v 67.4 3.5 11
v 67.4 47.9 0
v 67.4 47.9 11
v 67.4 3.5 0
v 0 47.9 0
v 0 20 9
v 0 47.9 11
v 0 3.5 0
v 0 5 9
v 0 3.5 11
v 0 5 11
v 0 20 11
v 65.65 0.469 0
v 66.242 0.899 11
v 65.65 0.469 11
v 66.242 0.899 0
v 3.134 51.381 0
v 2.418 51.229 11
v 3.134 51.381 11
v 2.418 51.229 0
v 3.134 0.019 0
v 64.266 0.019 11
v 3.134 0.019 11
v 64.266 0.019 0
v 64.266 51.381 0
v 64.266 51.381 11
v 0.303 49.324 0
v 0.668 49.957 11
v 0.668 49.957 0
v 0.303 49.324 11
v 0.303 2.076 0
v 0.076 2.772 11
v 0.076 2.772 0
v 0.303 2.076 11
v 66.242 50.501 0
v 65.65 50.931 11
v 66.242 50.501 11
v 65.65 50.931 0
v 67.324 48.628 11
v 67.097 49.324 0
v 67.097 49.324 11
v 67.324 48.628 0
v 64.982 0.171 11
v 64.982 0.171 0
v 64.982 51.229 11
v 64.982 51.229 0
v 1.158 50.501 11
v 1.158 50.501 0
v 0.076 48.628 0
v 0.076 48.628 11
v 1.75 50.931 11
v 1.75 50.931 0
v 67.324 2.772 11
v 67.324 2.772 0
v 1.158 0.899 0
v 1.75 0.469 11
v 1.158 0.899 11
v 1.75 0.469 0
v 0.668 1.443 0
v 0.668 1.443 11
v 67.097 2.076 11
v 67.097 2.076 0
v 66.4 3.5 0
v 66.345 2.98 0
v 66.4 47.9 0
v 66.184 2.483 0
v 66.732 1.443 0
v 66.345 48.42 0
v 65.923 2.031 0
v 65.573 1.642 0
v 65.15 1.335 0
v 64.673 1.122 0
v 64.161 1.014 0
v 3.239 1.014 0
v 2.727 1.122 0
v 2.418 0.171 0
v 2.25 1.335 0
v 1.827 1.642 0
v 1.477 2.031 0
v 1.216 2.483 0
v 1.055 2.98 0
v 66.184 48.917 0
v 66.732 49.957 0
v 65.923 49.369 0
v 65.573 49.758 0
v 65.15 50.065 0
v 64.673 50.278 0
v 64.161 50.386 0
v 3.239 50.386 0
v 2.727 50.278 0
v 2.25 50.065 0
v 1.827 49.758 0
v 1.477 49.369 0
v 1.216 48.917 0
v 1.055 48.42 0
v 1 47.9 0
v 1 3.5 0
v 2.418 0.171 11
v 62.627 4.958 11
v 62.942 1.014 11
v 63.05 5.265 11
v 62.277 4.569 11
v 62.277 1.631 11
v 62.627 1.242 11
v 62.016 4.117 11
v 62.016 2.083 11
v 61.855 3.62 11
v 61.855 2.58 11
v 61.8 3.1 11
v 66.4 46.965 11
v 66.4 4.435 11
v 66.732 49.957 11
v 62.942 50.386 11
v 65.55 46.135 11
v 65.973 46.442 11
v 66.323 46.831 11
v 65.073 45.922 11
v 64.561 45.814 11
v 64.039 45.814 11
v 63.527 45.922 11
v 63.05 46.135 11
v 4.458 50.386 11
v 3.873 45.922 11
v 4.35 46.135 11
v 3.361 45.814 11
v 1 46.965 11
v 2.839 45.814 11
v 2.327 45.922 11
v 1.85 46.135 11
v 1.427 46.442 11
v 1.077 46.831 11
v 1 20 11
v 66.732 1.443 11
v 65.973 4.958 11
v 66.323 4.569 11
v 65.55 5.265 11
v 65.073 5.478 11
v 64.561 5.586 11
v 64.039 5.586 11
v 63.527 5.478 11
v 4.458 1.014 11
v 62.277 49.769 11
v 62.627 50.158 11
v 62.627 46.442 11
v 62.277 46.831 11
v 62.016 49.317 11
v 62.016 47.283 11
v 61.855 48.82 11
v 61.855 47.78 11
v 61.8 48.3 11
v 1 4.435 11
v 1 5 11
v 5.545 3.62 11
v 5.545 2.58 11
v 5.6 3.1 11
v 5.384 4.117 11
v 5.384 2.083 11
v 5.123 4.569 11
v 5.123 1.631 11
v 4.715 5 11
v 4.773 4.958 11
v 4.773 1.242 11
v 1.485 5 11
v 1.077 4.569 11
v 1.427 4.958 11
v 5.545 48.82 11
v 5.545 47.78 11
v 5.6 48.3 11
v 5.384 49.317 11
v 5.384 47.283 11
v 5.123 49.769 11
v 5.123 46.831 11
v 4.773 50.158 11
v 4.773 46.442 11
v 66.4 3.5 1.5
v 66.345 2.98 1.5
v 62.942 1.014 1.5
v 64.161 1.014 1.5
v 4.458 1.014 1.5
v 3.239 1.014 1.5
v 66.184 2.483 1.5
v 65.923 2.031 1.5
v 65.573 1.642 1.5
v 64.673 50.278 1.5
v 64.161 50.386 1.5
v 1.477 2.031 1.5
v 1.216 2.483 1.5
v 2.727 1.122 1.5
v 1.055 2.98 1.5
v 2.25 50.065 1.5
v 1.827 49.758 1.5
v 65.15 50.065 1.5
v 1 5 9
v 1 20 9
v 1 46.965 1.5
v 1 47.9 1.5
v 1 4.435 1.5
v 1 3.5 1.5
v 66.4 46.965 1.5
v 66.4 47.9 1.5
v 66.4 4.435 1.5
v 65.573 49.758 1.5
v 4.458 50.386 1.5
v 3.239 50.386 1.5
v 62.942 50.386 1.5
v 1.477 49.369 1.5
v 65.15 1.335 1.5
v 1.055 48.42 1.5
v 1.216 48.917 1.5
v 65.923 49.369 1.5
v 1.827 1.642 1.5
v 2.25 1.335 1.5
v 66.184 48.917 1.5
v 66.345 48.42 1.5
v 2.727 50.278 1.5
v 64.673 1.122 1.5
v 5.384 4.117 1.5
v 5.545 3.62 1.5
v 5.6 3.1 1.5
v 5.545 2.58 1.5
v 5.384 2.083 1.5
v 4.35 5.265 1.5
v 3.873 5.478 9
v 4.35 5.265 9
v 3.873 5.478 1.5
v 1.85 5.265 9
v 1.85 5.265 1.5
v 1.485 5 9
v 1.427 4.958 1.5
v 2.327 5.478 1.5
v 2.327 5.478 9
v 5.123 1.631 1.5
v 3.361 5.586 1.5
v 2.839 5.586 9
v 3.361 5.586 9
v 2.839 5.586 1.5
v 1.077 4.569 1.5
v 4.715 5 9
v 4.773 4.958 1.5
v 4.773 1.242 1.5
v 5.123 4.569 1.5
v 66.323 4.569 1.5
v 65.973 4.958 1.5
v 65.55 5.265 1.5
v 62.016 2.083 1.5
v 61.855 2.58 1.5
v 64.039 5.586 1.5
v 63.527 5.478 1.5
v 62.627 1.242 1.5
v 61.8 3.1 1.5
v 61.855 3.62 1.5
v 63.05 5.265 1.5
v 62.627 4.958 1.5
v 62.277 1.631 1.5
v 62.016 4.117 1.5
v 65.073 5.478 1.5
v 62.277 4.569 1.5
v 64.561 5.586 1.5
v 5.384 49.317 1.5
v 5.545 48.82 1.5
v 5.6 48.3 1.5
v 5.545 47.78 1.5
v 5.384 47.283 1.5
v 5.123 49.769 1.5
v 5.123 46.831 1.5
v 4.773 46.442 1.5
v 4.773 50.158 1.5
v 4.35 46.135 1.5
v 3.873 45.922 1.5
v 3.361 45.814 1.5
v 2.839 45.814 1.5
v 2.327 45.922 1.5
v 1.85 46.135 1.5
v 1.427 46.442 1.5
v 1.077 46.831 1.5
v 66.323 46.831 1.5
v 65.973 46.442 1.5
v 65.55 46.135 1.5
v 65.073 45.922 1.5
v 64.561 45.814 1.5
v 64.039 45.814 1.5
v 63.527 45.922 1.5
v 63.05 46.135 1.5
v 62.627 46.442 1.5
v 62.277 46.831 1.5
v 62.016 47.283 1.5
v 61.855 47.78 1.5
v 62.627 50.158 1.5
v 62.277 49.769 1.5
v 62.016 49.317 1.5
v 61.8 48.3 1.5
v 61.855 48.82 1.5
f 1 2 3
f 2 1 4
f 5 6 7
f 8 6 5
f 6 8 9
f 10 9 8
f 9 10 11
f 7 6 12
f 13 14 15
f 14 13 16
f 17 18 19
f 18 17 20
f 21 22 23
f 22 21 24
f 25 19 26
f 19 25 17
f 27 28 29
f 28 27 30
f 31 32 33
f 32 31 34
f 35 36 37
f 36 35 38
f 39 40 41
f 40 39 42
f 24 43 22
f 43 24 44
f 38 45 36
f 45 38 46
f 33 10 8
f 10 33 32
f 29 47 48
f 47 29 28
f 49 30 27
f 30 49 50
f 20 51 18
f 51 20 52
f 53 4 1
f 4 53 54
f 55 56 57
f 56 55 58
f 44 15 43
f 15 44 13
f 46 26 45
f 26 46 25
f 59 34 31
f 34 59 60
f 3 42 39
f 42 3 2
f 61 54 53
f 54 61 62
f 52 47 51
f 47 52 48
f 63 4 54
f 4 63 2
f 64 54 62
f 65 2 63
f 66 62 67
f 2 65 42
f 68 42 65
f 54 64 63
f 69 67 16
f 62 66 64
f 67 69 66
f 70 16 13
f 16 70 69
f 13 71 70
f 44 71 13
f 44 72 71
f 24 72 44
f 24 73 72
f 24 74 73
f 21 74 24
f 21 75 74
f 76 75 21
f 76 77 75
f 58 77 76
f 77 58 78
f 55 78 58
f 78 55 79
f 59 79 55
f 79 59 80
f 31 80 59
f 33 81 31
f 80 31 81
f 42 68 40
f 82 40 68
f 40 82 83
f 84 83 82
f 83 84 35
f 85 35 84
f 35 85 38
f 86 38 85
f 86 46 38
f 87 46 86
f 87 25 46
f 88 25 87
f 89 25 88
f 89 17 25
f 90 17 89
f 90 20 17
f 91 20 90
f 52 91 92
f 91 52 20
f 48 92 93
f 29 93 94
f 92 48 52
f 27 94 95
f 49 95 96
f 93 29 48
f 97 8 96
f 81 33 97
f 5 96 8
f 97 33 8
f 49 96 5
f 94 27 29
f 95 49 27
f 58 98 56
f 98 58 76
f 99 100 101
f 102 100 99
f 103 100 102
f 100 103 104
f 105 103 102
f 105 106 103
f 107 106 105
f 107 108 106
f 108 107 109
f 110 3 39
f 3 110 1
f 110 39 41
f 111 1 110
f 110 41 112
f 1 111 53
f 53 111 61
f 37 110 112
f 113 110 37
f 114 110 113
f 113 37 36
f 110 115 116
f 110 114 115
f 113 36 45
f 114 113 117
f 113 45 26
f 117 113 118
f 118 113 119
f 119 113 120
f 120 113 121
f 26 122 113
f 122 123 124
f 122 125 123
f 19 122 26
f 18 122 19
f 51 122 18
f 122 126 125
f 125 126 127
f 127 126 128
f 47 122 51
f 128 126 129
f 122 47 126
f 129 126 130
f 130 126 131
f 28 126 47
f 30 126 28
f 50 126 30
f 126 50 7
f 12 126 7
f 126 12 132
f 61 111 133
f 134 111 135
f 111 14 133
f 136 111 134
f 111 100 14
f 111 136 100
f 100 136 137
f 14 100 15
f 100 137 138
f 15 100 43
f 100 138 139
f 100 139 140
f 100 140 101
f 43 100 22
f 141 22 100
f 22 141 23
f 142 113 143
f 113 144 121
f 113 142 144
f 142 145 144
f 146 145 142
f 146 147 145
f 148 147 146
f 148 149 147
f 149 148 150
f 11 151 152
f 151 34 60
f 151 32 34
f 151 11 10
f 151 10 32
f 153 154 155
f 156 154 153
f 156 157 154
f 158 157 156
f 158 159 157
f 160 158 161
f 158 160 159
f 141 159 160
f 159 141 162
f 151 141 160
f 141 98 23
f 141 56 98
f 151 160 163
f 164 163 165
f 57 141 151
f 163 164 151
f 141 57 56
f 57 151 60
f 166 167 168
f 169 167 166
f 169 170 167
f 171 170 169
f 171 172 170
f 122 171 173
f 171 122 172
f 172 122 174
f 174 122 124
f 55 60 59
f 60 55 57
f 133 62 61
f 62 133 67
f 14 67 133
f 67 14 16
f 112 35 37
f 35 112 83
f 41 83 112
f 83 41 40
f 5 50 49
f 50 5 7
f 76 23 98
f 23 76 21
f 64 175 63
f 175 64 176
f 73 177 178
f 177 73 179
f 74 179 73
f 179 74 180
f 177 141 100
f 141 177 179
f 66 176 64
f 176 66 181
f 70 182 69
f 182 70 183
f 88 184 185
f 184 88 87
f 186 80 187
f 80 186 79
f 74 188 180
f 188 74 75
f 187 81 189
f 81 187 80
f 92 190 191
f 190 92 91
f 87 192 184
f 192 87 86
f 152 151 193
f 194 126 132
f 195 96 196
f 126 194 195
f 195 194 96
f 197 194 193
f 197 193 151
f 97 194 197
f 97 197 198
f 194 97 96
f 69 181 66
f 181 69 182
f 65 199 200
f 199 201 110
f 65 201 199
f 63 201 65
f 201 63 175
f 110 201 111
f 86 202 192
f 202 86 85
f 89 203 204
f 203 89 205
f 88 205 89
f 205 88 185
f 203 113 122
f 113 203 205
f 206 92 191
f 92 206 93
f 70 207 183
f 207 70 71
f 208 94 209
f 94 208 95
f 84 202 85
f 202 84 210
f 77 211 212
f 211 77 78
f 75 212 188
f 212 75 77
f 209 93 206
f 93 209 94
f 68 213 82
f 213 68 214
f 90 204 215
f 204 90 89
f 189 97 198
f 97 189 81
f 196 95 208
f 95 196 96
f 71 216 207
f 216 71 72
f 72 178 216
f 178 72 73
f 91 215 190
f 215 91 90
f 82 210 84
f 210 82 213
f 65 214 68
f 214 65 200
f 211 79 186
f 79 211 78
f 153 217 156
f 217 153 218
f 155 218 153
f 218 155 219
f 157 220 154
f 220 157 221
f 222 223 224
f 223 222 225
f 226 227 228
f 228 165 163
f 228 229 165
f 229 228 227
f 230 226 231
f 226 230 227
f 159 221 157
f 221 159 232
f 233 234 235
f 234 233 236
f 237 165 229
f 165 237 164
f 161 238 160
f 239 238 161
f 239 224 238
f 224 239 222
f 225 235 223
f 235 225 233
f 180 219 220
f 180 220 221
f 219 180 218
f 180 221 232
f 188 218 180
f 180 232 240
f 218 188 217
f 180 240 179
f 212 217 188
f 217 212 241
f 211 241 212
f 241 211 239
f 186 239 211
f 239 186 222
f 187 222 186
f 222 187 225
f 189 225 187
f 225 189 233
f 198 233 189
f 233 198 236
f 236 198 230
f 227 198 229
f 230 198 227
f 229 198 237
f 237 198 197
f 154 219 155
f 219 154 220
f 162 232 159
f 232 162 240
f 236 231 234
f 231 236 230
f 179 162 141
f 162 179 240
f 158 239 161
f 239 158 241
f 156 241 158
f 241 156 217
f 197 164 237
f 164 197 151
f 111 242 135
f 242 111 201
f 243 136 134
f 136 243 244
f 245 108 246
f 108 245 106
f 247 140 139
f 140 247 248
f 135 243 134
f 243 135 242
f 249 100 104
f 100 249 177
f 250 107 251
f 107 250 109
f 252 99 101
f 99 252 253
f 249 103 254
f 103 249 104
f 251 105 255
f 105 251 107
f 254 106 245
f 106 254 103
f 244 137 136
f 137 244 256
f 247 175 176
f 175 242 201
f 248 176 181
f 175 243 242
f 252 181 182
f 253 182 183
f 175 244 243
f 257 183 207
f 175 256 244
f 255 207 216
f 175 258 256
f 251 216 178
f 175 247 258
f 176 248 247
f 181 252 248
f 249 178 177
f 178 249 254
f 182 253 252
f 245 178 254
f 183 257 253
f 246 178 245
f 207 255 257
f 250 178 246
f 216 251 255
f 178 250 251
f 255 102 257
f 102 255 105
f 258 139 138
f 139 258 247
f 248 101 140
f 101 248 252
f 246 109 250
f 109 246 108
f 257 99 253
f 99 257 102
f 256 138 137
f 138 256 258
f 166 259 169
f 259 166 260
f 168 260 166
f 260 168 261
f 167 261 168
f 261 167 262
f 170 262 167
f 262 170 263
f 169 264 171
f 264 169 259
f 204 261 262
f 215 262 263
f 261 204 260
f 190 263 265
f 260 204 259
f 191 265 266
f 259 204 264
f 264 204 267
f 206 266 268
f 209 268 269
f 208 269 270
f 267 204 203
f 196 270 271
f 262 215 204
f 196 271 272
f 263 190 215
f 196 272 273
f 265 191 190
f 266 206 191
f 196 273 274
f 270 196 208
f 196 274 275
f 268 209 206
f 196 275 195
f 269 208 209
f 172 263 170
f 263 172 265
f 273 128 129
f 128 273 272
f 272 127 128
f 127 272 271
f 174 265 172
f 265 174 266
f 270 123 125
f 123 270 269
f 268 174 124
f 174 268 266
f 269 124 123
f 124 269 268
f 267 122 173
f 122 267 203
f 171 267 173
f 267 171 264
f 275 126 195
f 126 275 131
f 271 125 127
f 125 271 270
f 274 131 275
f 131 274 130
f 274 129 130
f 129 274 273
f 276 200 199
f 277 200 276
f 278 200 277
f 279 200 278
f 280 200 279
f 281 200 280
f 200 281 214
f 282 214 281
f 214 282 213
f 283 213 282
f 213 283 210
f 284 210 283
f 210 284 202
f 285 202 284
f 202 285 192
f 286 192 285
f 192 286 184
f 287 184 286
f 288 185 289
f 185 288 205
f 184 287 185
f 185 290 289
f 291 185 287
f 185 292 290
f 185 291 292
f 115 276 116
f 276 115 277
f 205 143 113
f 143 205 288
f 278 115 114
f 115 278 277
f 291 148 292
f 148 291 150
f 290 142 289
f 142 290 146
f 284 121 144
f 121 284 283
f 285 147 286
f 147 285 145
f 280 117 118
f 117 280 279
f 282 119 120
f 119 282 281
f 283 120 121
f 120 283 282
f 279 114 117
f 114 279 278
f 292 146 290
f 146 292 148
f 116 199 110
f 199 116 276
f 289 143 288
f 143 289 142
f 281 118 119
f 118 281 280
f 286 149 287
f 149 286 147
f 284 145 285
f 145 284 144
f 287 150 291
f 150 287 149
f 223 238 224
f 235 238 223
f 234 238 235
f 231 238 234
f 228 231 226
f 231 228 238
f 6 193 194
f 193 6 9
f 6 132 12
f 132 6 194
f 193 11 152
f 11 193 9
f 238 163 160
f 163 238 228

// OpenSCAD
$fn = 30;


tp_h = 1.6;
tp_w = 65.4;
tp_d = 49.4;
tp_r = 2.5;

wall_t = 1;

box_h = 11;
box_w = tp_w + 2*wall_t;
box_d = tp_d + 2*wall_t;
box_r = tp_r + wall_t;

pillar_h = box_h - 1.5;
pillar_overlap = 0.4;

module rounded_cube(x, y, z, r) {
    hull() {
        translate([r, r, 0])
        cylinder(r=r, h=z);
        translate([x-r, r, 0])
        cylinder(r=r, h=z);
        translate([x-r, y-r, 0])
        cylinder(r=r, h=z);
        translate([r, y-r, 0])
        cylinder(r=r, h=z);
    }
}


module touchpad_case() {
    difference() {
        union() {
            difference() {
                rounded_cube(box_w, box_d, box_h, box_r);
                translate([wall_t, wall_t, -1])
                    rounded_cube(tp_w, tp_d, box_h + 2, tp_r);
            }
            // corner pillars
            translate([wall_t + tp_r - pillar_overlap, wall_t + tp_r - pillar_overlap, box_h - pillar_h])
                cylinder(r=tp_r, h=pillar_h);
            translate([wall_t + tp_w - tp_r + pillar_overlap, wall_t + tp_r - pillar_overlap, box_h - pillar_h])
                cylinder(r=tp_r, h=pillar_h);
            translate([wall_t + tp_r - pillar_overlap, wall_t + tp_d - tp_r + pillar_overlap, box_h - pillar_h])
                cylinder(r=tp_r, h=pillar_h);
            translate([wall_t + tp_w - tp_r + pillar_overlap, wall_t + tp_d - tp_r + pillar_overlap, box_h - pillar_h])
                cylinder(r=tp_r, h=pillar_h);
        }
        translate([-5, 5, 9])
            cube([10, 15, 10]);
    }
}

touchpad_case();
